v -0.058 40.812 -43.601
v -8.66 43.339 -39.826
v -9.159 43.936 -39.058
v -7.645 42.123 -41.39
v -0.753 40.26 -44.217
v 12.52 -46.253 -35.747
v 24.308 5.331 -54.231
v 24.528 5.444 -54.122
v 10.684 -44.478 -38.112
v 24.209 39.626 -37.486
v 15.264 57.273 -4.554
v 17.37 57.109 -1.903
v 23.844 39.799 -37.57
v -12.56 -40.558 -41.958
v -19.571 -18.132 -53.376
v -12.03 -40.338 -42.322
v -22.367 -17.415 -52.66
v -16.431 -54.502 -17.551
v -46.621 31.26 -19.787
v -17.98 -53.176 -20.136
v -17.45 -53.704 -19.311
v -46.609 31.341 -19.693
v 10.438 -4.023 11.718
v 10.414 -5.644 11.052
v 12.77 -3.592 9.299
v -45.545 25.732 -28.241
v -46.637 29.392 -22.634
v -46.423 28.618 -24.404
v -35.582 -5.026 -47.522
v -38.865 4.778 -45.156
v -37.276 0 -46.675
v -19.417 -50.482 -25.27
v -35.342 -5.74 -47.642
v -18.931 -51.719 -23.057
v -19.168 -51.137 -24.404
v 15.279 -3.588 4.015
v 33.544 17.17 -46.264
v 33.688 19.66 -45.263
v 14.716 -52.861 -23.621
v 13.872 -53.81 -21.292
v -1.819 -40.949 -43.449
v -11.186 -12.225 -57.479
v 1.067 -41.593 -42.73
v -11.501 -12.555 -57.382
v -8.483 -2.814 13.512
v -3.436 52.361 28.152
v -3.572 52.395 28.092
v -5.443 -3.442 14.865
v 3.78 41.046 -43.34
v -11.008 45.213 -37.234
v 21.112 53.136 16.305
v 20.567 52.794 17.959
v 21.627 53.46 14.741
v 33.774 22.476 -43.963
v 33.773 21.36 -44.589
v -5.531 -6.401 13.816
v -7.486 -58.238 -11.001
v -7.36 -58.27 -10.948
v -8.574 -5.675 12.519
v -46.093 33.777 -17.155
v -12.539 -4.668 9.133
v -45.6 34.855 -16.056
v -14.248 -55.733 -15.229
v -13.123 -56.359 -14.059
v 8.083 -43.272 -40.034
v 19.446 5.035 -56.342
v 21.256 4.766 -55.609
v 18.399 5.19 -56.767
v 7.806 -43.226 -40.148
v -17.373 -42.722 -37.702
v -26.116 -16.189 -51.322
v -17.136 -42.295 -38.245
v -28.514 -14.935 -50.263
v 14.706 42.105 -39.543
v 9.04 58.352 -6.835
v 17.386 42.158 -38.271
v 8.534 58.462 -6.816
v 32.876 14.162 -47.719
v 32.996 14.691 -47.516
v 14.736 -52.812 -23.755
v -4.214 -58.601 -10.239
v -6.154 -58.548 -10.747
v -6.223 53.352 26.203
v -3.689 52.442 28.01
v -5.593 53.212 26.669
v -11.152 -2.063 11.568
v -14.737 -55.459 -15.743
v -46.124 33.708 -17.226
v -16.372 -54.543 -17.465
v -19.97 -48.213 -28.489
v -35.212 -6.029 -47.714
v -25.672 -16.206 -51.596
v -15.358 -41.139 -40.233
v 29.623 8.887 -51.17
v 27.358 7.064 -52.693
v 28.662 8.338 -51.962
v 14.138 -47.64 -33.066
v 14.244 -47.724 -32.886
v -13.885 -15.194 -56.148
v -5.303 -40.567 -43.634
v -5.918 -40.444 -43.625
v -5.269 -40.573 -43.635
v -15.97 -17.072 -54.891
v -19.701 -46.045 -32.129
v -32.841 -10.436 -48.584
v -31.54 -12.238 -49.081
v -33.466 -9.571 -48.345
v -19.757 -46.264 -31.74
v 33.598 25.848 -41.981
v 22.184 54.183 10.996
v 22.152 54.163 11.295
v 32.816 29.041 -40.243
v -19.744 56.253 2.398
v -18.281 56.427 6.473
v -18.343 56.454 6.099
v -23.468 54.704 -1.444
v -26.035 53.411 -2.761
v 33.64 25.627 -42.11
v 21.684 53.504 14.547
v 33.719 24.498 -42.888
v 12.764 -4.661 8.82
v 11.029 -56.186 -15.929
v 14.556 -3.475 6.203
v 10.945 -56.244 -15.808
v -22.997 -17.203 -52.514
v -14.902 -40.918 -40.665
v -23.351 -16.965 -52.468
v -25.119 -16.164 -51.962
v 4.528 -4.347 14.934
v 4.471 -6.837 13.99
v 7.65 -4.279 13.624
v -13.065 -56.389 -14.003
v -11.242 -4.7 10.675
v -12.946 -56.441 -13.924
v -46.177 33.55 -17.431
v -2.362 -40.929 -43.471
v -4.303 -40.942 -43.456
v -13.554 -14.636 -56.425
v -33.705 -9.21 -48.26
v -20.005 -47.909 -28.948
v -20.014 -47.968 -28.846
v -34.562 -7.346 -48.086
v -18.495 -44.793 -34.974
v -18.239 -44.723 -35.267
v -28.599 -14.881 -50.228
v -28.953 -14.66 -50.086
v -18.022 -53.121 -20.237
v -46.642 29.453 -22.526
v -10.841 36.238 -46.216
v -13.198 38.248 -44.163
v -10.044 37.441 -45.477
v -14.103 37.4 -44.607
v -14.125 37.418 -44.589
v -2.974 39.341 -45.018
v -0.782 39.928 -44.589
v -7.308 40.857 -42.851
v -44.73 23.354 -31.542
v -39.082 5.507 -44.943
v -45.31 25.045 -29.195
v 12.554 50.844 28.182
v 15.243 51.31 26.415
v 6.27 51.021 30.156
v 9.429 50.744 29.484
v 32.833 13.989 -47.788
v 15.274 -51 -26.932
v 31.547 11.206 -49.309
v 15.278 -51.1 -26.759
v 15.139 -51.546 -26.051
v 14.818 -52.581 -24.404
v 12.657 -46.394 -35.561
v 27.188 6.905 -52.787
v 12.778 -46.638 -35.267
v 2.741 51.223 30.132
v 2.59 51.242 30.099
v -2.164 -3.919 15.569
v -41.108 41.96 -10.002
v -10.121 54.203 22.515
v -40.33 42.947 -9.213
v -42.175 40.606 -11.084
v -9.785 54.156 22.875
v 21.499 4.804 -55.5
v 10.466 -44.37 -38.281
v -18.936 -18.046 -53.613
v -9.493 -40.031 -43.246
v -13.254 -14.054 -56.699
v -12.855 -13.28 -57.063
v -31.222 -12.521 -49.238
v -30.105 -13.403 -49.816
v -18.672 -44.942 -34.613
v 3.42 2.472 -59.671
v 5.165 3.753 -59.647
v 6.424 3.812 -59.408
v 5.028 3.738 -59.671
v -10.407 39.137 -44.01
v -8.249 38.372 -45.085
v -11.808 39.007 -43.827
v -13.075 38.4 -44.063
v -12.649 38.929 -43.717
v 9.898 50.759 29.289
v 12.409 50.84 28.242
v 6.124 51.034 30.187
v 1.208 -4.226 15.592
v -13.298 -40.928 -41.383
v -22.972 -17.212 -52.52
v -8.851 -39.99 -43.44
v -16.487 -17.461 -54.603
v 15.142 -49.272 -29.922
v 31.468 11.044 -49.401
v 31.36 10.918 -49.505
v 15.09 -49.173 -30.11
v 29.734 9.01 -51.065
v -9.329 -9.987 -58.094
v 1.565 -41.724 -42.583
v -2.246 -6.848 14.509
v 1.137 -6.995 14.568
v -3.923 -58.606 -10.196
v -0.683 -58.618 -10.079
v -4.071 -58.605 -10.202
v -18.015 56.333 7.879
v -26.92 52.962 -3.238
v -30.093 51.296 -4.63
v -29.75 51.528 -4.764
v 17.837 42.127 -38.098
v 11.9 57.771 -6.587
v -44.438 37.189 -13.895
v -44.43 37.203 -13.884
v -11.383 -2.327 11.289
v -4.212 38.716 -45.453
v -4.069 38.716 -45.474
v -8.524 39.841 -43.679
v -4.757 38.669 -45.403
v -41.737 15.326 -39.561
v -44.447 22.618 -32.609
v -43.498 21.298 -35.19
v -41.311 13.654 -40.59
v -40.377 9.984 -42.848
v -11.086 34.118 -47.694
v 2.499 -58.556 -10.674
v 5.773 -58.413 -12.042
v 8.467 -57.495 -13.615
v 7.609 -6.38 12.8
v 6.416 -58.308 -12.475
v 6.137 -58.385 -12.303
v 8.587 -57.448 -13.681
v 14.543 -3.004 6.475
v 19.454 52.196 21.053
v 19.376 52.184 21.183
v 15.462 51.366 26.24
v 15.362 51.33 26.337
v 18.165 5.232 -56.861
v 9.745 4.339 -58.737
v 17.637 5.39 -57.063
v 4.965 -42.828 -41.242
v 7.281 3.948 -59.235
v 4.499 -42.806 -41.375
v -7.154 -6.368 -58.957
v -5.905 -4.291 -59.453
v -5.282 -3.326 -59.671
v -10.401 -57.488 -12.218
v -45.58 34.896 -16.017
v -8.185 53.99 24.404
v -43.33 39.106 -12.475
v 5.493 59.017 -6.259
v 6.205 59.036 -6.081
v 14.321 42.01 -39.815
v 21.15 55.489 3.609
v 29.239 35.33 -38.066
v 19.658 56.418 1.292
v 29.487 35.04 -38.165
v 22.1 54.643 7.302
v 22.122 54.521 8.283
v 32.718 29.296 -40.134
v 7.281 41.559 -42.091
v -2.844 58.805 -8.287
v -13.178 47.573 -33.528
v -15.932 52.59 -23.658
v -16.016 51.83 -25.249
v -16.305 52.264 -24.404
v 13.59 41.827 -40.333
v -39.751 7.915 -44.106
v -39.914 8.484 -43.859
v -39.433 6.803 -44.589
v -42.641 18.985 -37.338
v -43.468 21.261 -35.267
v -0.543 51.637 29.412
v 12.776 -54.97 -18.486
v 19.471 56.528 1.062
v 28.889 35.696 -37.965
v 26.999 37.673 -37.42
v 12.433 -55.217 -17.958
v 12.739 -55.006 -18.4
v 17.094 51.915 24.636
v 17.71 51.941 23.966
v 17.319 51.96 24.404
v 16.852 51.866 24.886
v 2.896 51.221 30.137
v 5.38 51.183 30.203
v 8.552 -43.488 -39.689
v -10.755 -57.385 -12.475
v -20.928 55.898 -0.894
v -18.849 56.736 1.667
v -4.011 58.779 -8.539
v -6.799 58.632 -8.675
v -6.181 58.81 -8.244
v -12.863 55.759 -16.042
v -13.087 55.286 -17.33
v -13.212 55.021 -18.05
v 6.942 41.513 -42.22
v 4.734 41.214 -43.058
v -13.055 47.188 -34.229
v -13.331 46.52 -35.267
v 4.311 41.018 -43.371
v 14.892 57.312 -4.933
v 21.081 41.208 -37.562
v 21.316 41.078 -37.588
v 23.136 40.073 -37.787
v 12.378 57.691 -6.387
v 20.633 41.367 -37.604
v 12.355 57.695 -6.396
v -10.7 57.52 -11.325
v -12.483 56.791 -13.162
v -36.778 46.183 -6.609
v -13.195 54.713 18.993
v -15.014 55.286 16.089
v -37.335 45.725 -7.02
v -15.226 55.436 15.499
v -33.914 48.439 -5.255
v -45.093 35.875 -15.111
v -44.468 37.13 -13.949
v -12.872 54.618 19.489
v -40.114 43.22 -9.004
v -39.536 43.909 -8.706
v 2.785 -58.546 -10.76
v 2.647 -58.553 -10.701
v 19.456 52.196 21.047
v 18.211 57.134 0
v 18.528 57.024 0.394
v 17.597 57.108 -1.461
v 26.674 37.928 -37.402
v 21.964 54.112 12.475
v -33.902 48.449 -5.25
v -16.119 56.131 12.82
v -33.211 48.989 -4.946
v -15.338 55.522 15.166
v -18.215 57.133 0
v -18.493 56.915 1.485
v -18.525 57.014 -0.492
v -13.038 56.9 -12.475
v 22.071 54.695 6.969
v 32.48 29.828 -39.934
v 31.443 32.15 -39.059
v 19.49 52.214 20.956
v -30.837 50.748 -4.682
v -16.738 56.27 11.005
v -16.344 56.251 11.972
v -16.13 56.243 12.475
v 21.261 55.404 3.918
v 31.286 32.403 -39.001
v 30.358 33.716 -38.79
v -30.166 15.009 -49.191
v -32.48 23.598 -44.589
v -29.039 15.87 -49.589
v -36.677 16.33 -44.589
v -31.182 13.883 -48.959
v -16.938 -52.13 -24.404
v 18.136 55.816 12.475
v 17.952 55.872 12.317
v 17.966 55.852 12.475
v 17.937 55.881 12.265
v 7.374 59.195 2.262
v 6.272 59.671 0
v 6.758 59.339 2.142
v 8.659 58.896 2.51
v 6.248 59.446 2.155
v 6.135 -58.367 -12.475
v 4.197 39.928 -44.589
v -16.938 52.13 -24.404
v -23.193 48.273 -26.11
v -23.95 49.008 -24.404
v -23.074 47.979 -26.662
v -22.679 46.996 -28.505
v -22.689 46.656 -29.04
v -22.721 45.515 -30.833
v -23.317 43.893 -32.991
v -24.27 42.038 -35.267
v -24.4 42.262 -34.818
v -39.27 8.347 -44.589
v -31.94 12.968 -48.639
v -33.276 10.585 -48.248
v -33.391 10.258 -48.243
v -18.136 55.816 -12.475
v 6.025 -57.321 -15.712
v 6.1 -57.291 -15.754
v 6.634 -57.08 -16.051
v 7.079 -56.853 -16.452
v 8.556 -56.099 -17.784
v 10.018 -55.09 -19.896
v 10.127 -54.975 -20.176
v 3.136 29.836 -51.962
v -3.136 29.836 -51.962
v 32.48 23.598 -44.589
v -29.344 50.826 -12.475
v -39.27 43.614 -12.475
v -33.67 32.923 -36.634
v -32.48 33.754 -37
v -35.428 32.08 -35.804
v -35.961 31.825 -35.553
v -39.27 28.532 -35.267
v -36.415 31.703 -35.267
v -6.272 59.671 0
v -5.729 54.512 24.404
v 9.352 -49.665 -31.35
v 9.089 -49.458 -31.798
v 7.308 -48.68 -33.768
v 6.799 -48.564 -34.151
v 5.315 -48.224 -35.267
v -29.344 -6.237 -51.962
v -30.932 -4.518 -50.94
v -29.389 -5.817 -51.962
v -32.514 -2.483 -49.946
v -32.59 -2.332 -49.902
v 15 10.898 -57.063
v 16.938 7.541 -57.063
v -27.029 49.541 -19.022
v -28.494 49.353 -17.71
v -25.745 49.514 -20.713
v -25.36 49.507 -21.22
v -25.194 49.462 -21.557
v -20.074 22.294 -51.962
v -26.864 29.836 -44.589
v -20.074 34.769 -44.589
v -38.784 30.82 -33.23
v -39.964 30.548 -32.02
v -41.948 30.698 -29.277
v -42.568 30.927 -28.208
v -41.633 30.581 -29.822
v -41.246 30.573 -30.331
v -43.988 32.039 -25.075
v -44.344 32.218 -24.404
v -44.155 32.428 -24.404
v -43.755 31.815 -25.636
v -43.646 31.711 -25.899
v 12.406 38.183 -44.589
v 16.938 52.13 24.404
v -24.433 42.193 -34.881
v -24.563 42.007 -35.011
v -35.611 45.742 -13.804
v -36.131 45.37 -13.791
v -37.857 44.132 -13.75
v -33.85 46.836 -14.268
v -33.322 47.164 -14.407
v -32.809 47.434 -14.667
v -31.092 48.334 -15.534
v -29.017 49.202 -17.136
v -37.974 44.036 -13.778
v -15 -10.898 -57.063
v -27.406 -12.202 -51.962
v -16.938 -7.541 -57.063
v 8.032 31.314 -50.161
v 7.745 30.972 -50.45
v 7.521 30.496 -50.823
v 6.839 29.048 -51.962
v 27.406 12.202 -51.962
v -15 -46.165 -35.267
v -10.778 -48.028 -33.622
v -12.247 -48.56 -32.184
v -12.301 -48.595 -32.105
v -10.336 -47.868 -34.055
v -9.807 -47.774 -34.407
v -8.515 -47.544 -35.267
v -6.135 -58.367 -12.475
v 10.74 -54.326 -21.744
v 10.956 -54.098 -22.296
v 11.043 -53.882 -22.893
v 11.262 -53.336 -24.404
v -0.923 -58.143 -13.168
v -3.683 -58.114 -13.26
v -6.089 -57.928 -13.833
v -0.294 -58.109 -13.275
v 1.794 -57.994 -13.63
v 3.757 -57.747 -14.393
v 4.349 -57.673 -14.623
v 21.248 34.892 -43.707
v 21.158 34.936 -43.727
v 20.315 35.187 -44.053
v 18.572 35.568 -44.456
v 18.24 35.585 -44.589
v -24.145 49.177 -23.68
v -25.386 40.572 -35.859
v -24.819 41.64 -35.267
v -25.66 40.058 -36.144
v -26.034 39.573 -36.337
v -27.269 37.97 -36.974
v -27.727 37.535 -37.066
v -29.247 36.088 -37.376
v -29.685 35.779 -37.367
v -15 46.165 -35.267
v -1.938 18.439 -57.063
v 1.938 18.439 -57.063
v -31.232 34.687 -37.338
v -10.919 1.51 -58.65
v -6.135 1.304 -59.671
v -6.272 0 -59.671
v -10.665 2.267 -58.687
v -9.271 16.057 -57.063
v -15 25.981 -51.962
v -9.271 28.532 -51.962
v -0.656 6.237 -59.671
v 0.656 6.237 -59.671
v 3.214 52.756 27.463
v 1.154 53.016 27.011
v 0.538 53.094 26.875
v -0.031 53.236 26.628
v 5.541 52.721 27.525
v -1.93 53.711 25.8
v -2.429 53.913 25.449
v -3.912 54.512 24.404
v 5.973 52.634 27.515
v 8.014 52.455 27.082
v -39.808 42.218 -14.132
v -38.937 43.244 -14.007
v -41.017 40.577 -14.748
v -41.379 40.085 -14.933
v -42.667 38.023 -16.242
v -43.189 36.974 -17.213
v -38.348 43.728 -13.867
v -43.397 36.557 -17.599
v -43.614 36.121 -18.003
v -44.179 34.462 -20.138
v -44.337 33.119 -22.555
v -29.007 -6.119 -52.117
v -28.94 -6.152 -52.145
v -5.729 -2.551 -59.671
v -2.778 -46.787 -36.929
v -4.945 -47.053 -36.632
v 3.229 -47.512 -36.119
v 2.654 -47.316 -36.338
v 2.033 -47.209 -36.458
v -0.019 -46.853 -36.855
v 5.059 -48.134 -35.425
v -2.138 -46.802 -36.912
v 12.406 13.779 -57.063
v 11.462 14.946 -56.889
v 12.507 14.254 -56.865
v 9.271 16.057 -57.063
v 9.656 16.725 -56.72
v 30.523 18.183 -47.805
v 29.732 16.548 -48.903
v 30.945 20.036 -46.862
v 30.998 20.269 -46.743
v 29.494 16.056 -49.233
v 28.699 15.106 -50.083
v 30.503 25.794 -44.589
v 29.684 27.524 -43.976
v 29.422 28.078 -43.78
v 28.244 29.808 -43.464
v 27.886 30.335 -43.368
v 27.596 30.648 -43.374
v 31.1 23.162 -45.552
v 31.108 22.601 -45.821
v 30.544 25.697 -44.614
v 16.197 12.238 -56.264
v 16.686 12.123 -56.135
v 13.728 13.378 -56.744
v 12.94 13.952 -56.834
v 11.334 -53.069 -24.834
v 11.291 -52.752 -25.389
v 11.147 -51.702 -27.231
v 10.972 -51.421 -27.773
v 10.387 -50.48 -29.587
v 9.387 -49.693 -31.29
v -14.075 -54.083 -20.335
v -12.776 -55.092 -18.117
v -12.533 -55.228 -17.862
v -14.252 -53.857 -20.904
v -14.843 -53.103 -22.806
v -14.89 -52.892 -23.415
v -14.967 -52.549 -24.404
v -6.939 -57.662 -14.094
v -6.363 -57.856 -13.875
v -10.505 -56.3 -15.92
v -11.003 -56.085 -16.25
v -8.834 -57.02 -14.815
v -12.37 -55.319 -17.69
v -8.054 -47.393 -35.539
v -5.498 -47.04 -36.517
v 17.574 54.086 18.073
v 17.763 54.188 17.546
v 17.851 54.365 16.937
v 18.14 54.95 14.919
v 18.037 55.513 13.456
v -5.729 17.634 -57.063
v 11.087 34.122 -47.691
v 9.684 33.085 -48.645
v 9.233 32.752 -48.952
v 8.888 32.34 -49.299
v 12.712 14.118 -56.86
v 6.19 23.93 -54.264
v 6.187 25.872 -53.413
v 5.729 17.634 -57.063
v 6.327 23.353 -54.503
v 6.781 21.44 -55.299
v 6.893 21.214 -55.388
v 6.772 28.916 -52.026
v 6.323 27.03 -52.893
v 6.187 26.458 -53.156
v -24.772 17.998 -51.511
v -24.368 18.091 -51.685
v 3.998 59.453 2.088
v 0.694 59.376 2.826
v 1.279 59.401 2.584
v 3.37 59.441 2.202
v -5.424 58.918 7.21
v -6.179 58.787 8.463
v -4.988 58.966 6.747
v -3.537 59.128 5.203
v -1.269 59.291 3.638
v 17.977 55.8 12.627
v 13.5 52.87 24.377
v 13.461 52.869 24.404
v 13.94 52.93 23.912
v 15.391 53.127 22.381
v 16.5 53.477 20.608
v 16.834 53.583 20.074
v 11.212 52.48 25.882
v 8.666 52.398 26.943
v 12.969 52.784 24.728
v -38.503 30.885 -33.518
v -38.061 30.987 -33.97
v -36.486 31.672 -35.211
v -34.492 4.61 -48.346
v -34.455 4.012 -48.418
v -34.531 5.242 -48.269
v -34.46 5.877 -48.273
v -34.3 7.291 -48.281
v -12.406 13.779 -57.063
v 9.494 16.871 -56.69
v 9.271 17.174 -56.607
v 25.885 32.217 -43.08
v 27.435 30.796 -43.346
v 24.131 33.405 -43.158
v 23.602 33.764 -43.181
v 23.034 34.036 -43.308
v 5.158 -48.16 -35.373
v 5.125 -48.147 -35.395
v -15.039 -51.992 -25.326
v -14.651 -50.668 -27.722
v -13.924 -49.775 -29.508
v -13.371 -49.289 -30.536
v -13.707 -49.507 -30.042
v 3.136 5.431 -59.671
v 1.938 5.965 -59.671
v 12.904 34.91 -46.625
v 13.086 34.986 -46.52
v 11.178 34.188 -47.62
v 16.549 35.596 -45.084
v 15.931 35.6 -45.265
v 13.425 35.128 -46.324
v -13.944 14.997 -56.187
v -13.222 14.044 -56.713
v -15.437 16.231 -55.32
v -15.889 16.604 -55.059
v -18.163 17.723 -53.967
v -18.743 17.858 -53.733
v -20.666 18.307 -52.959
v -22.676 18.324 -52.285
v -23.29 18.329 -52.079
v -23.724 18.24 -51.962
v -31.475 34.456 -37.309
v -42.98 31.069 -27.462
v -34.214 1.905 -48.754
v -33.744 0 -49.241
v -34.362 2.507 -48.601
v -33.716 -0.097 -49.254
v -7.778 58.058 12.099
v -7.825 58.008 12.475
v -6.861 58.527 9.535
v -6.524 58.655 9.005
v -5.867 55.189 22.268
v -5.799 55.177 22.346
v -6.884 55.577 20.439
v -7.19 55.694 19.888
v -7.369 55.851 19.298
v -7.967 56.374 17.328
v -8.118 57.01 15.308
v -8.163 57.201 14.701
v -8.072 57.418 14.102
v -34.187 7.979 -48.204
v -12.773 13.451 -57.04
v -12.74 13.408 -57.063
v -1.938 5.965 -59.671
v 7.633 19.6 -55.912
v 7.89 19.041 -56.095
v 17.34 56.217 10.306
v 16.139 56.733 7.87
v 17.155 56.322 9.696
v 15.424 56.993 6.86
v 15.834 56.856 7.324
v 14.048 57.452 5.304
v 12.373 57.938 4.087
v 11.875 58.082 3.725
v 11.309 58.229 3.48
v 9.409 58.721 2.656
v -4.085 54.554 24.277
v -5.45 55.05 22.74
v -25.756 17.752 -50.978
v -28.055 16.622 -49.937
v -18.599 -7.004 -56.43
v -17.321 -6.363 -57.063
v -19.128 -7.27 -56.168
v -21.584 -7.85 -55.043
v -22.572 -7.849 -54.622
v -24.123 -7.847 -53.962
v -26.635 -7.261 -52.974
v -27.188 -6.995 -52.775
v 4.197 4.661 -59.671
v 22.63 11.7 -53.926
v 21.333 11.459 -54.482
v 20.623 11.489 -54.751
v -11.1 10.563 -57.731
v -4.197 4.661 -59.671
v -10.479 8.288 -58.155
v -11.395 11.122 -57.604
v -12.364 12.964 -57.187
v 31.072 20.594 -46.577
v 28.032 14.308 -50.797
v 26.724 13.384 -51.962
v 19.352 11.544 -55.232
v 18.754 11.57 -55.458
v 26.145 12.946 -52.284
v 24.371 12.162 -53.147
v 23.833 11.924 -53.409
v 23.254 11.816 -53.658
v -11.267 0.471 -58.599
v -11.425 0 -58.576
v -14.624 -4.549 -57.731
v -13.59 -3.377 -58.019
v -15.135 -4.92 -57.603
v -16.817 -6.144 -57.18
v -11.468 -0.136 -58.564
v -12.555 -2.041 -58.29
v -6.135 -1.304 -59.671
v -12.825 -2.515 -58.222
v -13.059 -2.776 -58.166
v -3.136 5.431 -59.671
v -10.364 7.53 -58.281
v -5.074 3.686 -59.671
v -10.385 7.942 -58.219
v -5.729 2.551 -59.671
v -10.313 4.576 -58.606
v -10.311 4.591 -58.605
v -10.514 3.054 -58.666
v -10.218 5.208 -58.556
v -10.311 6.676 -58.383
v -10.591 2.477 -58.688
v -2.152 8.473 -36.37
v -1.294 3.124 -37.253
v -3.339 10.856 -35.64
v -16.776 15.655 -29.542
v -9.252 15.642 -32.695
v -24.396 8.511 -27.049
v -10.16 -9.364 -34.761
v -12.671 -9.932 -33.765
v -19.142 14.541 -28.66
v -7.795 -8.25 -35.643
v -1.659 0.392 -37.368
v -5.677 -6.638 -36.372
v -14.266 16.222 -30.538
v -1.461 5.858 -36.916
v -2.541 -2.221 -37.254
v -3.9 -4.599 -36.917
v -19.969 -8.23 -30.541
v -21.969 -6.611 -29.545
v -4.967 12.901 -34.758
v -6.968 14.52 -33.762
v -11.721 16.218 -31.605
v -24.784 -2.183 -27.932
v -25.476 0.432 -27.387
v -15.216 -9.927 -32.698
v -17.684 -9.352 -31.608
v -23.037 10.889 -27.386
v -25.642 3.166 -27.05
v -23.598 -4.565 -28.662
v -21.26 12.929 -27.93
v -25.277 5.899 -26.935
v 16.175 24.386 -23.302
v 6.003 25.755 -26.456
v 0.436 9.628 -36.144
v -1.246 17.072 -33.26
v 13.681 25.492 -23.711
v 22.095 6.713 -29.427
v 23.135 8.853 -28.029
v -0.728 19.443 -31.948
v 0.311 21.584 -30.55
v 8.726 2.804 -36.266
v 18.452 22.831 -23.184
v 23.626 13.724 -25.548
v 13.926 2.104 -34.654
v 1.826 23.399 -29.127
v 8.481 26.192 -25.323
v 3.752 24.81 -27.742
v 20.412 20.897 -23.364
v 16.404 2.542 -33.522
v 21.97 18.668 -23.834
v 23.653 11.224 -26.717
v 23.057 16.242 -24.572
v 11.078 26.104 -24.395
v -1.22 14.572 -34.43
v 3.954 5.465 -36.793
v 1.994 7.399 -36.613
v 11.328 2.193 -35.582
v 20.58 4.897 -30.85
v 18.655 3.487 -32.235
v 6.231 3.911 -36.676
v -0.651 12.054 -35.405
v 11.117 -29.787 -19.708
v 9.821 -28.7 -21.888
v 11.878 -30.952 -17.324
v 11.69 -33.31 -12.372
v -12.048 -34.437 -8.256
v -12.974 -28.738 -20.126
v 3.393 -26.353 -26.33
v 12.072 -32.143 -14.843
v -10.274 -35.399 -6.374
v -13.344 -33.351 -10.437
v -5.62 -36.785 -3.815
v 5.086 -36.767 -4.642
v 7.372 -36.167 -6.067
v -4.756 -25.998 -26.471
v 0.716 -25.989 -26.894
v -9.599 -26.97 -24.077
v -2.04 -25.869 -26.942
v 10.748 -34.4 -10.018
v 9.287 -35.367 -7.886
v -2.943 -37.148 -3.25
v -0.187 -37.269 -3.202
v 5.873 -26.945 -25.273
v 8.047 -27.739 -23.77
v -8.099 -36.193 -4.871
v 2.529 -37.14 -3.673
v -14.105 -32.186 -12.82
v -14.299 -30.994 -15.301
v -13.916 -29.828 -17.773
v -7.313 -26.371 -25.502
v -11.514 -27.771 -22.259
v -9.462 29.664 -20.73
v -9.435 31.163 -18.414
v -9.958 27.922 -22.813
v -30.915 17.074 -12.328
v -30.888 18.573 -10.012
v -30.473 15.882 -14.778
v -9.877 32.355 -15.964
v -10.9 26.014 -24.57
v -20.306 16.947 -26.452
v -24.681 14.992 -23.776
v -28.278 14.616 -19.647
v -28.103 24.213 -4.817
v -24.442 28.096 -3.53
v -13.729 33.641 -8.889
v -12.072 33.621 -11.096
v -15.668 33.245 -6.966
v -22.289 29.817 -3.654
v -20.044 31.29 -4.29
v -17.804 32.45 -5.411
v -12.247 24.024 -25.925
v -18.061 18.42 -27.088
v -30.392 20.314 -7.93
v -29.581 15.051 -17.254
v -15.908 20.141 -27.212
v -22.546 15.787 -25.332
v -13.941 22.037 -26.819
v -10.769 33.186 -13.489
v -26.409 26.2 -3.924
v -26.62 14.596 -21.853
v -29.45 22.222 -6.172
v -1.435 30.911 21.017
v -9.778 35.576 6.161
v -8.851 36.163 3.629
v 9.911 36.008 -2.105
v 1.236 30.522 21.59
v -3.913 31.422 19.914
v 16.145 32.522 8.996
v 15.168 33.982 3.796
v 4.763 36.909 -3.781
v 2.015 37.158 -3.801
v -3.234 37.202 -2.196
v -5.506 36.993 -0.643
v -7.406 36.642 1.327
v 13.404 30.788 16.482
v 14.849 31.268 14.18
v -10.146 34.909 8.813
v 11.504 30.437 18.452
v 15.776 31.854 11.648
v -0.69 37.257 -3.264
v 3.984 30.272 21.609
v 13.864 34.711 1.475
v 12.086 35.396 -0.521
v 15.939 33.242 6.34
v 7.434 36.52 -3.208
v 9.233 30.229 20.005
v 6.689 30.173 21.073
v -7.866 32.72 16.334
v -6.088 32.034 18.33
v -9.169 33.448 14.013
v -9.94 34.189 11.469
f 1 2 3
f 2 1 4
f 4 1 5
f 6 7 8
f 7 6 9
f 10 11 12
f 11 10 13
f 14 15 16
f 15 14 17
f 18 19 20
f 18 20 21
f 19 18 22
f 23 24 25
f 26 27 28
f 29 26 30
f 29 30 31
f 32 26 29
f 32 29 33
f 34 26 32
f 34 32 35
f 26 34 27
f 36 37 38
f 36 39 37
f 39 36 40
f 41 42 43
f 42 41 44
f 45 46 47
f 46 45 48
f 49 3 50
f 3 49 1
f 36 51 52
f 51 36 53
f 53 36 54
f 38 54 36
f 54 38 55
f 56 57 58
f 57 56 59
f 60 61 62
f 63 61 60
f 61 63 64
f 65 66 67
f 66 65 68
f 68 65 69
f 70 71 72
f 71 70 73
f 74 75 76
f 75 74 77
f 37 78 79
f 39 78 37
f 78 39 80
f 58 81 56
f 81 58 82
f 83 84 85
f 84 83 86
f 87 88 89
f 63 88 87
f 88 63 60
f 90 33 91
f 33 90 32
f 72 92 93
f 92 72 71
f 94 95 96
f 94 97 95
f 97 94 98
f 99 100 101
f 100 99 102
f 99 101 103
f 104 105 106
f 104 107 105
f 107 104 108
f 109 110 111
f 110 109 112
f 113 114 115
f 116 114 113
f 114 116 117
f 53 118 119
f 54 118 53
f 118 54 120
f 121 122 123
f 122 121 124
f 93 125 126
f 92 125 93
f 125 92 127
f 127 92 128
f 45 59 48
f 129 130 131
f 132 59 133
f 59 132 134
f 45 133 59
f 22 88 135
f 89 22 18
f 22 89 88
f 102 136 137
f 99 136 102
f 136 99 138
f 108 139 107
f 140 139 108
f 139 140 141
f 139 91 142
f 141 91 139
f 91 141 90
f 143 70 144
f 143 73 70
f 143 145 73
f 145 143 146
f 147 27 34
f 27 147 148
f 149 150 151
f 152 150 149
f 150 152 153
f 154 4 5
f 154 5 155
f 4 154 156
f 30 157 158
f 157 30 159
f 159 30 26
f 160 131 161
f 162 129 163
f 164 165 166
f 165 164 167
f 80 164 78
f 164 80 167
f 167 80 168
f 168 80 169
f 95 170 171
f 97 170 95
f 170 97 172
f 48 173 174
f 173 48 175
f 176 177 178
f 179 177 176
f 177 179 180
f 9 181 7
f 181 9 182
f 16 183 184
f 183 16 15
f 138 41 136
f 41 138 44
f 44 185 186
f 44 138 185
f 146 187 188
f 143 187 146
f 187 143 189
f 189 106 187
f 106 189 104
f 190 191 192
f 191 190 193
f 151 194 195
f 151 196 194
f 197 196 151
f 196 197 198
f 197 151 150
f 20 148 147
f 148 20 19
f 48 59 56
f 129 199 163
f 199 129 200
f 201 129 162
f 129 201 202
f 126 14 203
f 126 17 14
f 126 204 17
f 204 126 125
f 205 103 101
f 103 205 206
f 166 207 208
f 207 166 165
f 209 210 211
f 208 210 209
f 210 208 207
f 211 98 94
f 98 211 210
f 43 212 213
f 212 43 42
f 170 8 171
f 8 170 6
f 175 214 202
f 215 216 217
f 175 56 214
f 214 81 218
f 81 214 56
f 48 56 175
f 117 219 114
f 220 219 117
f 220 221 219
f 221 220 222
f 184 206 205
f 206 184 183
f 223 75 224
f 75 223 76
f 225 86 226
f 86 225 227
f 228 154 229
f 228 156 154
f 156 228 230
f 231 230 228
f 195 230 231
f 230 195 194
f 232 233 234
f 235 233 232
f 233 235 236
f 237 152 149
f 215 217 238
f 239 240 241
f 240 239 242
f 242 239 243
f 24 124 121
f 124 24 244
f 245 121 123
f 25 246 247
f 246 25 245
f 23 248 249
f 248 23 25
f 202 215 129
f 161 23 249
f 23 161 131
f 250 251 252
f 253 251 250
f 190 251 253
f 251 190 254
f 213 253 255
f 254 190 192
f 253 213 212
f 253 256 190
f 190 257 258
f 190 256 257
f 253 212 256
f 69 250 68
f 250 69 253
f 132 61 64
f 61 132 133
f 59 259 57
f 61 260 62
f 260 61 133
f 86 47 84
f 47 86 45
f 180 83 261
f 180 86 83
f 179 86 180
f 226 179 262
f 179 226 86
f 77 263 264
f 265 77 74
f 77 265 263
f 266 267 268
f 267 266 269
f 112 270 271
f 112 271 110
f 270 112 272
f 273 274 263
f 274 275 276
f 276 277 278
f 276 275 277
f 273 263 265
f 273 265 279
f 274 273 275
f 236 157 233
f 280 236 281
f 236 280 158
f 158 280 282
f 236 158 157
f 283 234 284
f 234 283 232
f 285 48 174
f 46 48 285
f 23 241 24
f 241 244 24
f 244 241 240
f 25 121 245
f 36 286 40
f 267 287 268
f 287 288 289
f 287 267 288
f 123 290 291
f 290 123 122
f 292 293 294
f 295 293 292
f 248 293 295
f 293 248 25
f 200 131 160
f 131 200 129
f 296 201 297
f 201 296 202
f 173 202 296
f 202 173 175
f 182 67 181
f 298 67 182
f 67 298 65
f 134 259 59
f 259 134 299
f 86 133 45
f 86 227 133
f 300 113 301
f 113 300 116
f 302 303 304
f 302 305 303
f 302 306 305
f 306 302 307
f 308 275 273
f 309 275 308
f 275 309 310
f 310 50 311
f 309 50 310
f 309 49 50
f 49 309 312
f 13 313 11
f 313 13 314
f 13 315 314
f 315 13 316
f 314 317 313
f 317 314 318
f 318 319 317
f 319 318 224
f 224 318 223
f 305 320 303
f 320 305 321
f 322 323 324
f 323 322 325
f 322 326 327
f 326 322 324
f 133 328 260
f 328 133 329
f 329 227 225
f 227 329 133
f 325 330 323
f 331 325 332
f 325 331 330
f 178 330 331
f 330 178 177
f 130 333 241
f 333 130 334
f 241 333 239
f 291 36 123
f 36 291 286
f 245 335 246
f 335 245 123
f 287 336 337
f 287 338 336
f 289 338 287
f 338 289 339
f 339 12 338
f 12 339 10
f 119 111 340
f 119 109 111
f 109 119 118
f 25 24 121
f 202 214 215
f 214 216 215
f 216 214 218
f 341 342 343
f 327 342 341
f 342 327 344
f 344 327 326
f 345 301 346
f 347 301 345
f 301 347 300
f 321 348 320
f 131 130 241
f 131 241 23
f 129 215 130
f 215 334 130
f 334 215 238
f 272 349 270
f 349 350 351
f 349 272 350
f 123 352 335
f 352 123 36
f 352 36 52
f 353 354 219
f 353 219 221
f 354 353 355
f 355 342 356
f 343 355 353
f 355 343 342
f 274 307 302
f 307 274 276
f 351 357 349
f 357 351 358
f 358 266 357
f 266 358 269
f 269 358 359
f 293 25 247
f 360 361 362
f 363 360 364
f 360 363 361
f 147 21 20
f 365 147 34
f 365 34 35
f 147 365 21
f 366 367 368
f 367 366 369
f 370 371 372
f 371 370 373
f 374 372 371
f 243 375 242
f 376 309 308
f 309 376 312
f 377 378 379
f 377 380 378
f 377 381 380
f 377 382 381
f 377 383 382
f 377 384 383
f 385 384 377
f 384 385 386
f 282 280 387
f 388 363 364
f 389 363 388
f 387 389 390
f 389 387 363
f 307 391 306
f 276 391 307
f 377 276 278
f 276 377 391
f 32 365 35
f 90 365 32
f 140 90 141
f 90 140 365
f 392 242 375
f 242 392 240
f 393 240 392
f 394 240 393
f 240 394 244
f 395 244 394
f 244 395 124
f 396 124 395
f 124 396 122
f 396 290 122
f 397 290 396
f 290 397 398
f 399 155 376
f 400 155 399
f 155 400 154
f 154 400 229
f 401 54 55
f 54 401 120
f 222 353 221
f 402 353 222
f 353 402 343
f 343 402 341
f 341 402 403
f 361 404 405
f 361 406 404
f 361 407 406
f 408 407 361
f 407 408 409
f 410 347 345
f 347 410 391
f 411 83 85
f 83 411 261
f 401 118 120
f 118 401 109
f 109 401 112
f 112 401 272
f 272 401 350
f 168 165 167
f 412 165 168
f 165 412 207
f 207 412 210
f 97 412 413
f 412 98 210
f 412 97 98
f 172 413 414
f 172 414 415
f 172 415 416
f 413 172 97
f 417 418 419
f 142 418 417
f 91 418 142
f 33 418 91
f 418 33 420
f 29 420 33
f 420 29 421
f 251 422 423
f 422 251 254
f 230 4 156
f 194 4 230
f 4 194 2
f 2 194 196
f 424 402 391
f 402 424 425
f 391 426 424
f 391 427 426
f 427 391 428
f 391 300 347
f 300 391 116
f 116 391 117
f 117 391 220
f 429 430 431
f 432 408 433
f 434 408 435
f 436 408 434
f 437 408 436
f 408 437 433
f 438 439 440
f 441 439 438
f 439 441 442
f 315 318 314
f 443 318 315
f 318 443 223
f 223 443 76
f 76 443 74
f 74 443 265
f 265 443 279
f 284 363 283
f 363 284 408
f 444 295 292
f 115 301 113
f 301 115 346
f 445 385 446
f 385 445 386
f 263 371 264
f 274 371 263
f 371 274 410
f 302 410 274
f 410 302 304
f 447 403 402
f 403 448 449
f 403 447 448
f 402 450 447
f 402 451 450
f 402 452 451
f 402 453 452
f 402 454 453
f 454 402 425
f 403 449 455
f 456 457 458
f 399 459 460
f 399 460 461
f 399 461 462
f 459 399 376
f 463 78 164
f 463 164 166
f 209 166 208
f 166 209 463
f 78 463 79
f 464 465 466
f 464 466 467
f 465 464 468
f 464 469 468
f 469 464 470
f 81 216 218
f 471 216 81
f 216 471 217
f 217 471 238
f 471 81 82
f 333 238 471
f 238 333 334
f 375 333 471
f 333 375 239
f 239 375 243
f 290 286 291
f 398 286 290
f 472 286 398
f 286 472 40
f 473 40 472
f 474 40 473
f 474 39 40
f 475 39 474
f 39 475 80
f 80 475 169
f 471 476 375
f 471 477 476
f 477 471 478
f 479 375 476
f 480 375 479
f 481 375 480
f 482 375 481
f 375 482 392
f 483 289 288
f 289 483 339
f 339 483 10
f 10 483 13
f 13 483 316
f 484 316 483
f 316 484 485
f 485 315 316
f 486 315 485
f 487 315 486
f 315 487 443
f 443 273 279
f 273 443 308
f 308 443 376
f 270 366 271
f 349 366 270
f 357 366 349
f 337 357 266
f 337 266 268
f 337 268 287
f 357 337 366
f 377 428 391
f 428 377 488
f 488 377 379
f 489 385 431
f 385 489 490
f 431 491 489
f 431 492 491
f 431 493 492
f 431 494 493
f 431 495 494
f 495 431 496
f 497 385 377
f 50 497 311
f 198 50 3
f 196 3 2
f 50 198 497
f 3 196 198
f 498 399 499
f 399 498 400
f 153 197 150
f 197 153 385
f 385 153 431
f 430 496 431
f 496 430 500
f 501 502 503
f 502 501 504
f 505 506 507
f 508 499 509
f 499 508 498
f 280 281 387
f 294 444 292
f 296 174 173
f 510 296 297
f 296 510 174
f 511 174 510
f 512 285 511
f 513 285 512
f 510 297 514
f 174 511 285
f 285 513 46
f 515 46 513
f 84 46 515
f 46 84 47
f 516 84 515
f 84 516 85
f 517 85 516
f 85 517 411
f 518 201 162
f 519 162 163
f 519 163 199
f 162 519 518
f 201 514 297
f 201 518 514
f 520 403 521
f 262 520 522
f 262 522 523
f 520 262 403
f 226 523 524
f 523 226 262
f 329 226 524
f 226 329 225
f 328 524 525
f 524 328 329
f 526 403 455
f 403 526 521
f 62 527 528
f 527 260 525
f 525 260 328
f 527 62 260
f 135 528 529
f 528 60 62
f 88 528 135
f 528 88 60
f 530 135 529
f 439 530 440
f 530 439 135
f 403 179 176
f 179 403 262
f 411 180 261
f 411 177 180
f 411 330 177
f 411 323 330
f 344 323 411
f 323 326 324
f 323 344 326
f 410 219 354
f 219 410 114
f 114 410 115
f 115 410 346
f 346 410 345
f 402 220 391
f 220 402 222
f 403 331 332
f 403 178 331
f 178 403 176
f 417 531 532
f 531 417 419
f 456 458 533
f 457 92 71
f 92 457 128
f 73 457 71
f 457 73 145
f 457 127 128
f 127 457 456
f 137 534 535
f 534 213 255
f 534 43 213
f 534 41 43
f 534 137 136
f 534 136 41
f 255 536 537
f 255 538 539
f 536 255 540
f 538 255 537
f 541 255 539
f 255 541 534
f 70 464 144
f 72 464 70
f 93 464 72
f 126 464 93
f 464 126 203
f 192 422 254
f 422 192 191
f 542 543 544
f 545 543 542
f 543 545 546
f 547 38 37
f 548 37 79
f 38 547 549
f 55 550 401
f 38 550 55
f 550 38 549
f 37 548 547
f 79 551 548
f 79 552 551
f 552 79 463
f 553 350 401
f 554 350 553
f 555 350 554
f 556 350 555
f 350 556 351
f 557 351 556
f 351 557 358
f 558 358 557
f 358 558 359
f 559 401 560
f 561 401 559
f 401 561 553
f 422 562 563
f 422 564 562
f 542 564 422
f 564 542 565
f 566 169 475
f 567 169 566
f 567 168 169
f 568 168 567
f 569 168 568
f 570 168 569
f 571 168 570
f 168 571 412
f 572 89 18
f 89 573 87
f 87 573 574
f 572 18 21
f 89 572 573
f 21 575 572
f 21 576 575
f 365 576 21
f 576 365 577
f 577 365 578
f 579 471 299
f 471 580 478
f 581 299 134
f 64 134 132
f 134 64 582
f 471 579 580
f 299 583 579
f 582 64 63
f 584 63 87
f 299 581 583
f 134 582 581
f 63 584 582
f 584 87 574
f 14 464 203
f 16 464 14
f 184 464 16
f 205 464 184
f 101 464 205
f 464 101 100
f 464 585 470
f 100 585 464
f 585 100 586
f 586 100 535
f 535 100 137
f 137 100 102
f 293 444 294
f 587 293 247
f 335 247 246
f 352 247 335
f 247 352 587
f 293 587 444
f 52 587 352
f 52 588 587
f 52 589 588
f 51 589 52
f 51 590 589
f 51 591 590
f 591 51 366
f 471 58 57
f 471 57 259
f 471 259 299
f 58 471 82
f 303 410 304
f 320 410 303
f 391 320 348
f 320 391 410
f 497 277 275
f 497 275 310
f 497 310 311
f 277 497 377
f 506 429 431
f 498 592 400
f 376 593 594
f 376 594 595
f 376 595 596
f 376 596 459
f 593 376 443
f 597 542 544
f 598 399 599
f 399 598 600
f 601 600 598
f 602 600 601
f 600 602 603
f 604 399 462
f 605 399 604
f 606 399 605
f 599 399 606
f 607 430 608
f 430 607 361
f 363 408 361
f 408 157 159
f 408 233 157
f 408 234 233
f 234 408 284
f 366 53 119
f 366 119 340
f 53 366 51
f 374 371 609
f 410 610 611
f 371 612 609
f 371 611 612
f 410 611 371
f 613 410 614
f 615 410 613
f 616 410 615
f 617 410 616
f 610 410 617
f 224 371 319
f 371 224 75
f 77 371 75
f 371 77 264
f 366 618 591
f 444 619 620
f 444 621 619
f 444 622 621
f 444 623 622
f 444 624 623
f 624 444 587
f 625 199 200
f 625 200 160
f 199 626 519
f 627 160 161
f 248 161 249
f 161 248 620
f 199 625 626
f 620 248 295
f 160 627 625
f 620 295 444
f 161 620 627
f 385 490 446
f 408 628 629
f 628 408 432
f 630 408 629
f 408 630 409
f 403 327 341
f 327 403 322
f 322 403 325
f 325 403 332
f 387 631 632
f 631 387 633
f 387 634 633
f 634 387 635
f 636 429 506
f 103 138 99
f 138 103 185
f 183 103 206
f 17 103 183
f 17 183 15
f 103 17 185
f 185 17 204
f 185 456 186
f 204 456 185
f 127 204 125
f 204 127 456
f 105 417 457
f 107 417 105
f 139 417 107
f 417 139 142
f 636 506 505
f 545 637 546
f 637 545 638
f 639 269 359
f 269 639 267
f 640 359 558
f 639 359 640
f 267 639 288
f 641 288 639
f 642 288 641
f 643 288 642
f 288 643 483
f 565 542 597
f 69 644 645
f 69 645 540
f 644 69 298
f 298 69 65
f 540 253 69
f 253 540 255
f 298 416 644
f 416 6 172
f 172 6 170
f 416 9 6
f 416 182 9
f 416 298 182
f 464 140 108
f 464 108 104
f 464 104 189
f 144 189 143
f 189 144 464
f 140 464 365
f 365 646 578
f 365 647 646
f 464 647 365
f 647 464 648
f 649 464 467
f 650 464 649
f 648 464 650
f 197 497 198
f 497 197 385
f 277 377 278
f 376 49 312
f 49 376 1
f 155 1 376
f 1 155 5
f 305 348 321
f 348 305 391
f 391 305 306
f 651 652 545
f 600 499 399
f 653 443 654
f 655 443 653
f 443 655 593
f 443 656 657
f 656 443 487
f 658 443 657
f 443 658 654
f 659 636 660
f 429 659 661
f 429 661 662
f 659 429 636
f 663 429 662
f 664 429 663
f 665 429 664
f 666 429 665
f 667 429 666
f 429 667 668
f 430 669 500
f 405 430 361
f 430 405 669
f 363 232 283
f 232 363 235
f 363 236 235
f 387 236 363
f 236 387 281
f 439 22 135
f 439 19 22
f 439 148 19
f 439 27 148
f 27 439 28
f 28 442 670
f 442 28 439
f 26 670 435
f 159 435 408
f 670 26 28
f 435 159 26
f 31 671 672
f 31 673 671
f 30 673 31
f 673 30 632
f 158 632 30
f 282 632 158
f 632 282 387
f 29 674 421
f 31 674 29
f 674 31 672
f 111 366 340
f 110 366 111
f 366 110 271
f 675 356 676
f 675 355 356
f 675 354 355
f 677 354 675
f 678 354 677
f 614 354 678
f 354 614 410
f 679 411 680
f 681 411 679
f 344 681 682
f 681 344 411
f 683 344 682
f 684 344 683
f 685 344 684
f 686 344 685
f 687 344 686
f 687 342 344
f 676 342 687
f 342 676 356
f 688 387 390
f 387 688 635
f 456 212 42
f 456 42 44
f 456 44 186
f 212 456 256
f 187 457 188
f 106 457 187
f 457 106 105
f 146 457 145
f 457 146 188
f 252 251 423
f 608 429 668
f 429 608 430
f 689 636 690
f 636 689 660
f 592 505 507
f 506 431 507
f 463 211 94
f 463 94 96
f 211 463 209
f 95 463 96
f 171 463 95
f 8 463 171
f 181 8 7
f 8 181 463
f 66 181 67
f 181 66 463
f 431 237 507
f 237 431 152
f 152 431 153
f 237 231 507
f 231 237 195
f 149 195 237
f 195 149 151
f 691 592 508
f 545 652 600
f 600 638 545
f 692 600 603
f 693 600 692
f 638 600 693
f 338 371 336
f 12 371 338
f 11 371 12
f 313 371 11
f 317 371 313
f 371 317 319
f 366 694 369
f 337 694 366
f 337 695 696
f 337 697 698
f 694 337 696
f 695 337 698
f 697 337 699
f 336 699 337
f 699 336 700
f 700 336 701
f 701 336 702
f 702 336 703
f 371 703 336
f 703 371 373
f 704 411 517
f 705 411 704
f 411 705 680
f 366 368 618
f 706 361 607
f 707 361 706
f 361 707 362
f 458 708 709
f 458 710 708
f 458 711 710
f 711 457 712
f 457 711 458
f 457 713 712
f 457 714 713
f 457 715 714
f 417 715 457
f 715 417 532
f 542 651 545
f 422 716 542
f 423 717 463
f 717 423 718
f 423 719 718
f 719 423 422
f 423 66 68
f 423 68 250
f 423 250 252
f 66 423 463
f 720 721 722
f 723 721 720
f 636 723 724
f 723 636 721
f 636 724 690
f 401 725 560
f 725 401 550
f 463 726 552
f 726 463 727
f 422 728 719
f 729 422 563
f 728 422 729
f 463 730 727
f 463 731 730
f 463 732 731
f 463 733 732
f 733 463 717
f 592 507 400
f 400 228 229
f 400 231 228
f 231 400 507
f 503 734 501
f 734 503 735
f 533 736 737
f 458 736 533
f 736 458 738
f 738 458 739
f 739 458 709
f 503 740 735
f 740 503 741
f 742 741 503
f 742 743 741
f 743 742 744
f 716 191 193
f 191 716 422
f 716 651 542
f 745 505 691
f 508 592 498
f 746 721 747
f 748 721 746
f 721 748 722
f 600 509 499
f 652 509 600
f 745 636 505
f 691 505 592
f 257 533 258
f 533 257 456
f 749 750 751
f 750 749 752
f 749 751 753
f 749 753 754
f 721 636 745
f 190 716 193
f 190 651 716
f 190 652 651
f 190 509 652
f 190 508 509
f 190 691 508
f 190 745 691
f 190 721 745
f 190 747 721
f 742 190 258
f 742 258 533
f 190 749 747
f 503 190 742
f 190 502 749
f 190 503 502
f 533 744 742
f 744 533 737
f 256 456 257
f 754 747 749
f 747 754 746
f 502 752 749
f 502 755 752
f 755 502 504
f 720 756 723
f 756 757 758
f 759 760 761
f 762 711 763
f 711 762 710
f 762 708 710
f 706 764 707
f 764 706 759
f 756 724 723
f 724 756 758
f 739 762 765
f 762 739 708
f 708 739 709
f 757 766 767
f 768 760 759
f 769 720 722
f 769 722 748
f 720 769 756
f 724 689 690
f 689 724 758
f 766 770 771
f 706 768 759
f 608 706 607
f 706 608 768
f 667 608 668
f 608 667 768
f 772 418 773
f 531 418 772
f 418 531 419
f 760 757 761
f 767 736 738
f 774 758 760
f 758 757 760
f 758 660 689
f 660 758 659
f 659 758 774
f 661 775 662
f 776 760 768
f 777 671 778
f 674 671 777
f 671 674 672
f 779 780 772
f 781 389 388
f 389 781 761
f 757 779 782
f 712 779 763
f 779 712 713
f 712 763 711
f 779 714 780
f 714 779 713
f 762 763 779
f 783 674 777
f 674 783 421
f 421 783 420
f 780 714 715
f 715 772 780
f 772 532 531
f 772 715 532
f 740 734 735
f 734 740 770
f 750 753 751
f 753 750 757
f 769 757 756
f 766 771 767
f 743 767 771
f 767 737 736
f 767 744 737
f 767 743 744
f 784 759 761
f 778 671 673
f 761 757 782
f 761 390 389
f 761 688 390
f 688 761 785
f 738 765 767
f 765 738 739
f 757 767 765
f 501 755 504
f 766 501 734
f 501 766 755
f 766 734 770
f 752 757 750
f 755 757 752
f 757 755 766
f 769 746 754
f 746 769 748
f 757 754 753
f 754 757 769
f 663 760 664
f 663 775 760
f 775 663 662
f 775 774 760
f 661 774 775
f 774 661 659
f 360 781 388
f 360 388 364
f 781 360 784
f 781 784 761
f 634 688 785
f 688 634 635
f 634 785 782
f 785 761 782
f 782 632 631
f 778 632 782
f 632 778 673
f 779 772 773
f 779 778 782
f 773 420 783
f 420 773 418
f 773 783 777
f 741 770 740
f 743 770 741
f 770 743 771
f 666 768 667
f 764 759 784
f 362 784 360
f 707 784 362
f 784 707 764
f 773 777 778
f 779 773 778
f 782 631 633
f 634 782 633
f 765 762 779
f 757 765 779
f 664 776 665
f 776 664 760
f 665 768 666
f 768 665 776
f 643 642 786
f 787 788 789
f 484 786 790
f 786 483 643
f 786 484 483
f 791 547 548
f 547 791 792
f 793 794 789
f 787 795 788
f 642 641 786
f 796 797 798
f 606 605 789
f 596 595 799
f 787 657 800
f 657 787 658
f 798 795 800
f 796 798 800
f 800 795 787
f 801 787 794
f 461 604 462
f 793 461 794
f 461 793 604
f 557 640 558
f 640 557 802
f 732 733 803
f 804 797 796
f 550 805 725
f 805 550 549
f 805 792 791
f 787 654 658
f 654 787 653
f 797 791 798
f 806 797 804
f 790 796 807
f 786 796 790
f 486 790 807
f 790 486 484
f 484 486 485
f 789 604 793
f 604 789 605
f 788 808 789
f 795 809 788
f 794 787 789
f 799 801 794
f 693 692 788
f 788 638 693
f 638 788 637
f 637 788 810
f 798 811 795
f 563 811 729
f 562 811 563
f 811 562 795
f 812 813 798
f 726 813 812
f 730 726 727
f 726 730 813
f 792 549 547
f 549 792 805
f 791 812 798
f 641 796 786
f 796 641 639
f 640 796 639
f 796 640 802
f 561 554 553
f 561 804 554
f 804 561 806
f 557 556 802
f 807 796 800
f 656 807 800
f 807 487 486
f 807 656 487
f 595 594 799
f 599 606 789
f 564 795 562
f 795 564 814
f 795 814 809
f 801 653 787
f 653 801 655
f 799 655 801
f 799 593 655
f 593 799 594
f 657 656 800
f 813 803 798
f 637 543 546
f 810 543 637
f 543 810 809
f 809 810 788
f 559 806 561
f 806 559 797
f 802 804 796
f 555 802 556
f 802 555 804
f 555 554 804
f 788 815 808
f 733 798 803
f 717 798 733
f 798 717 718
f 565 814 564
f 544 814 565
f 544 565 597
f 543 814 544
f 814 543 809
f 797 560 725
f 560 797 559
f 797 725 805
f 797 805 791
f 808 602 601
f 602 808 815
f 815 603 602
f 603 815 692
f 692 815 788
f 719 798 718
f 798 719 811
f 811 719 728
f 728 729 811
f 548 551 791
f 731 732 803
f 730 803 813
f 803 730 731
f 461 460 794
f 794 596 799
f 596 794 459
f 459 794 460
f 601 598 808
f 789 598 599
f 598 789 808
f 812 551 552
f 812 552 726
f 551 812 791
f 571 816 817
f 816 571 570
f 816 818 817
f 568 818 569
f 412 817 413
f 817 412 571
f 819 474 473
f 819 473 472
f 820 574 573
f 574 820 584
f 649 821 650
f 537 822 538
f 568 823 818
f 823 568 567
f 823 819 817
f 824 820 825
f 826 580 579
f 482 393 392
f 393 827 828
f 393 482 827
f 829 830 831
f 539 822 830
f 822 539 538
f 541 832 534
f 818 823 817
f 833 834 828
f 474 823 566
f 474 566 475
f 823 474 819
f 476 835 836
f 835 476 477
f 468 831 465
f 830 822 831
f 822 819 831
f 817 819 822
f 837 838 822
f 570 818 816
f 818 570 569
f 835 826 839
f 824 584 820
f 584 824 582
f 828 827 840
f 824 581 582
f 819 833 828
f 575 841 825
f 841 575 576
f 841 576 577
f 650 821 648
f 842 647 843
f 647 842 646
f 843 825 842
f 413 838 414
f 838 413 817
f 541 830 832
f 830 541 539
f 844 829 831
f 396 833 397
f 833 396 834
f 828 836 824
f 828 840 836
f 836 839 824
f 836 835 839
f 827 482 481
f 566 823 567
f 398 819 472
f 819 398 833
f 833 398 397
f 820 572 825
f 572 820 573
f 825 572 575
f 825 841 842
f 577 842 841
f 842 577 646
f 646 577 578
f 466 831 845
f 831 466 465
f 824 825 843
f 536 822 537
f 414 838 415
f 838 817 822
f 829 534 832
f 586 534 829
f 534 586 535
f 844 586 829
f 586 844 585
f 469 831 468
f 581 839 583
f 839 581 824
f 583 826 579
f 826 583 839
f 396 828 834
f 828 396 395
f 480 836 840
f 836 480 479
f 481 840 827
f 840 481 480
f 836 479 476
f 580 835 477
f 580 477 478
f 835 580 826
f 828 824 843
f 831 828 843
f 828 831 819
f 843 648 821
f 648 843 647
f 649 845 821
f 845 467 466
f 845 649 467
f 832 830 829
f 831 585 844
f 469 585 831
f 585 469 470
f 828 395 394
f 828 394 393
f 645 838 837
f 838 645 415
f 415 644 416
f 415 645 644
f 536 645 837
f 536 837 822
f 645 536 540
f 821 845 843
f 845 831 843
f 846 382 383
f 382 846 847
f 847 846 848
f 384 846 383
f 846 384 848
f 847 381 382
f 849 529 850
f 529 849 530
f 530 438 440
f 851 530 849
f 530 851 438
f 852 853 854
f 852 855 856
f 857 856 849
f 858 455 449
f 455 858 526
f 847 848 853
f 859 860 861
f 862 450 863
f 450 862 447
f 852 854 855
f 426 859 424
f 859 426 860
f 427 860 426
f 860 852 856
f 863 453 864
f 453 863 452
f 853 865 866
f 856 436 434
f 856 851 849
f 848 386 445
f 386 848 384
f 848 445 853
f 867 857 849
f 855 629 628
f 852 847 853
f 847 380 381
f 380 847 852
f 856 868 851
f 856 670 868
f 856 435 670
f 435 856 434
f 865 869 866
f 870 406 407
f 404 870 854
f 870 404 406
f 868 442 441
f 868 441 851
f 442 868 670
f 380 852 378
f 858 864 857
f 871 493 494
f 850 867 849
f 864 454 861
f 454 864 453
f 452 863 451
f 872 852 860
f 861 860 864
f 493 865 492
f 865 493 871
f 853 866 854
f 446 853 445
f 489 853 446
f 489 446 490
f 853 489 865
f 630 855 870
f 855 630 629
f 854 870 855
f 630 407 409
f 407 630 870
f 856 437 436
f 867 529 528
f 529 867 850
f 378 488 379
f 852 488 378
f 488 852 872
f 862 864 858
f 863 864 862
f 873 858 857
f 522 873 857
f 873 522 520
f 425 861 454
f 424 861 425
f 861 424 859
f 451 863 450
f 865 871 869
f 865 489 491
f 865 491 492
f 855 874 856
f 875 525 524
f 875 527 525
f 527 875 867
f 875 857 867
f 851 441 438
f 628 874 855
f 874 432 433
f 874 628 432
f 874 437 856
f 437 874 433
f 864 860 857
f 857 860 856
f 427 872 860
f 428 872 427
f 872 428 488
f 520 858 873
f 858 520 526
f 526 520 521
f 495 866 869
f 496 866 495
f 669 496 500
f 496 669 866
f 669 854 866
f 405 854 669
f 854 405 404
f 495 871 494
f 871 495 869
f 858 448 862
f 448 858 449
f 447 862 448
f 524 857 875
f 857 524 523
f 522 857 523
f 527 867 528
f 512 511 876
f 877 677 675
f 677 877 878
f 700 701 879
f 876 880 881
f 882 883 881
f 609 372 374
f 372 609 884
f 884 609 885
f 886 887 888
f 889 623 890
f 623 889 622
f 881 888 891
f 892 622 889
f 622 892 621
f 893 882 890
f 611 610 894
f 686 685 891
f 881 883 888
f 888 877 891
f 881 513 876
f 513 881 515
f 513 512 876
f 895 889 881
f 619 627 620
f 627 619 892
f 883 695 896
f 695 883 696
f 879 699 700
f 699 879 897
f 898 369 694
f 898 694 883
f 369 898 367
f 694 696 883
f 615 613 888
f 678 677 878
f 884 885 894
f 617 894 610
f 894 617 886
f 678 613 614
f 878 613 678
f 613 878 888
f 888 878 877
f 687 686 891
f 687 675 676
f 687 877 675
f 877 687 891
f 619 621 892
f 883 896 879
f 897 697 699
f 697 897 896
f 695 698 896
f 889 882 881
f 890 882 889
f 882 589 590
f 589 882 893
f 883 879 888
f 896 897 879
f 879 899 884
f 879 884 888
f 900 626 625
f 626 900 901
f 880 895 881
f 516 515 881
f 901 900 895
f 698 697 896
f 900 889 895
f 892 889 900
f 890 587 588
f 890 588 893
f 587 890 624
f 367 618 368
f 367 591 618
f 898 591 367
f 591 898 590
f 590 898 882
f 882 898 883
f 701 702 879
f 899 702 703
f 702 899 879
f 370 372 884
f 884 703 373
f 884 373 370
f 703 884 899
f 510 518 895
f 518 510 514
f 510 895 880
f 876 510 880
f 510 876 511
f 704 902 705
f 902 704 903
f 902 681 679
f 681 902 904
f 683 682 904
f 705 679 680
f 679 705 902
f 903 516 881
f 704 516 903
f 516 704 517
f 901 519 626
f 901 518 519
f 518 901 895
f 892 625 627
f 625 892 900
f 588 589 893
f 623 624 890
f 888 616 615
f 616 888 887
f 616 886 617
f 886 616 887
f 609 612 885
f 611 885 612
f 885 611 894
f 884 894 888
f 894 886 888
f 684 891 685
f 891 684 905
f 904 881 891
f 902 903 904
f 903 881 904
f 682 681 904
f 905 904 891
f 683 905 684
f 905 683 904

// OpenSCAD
difference() {
	intersection() {
		hull() {
			rotate(a = -104.9619843639, v = [-0.8737079601, -0.4122844528, 0.0000000000]) {
				rotate(a = -90.0000000000, v = [-0.9920645329, -0.1257297202, 0.0000000000]) {
					cylinder(h = 60, r = 16.2000000000);
				}
			}
			rotate(a = -104.9619843639, v = [-0.8737079601, -0.4122844528, 0.0000000000]) {
				rotate(a = -90.0000000000, v = [-0.6049173981, -0.7962882276, 0.0000000000]) {
					cylinder(h = 60, r = 16.2000000000);
				}
			}
			rotate(a = -104.9619843639, v = [-0.8737079601, -0.4122844528, 0.0000000000]) {
				rotate(a = -27.6102972421, v = [-0.3654982548, 0.2849593619, 0.0000000000]) {
					cylinder(h = 60, r = 16.2000000000);
				}
			}
			rotate(a = -104.9619843639, v = [-0.8737079601, -0.4122844528, 0.0000000000]) {
				rotate(a = -136.5800781830, v = [-0.6836285492, -0.0713331625, 0.0000000000]) {
					cylinder(h = 60, r = 16.2000000000);
				}
			}
			rotate(a = -104.9619843639, v = [-0.8737079601, -0.4122844528, 0.0000000000]) {
				rotate(a = -150.6905905926, v = [0.2359175348, -0.4289269045, 0.0000000000]) {
					cylinder(h = 60, r = 16.2000000000);
				}
			}
		}
		sphere(r = 60);
	}
	union() {
		rotate(a = -104.9619843639, v = [-0.8737079601, -0.4122844528, 0.0000000000]) {
			rotate(a = -90.0000000000, v = [-0.9920645329, -0.1257297202, 0.0000000000]) {
				translate(v = [0, 0, 35]) {
					cylinder(h = 100, r = 13.2000000000);
				}
			}
		}
		rotate(a = -104.9619843639, v = [-0.8737079601, -0.4122844528, 0.0000000000]) {
			rotate(a = -90.0000000000, v = [-0.6049173981, -0.7962882276, 0.0000000000]) {
				translate(v = [0, 0, 35]) {
					cylinder(h = 100, r = 13.2000000000);
				}
			}
		}
		rotate(a = -104.9619843639, v = [-0.8737079601, -0.4122844528, 0.0000000000]) {
			rotate(a = -27.6102972421, v = [-0.3654982548, 0.2849593619, 0.0000000000]) {
				translate(v = [0, 0, 35]) {
					cylinder(h = 100, r = 13.2000000000);
				}
			}
		}
		rotate(a = -104.9619843639, v = [-0.8737079601, -0.4122844528, 0.0000000000]) {
			rotate(a = -136.5800781830, v = [-0.6836285492, -0.0713331625, 0.0000000000]) {
				translate(v = [0, 0, 35]) {
					cylinder(h = 100, r = 13.2000000000);
				}
			}
		}
		rotate(a = -104.9619843639, v = [-0.8737079601, -0.4122844528, 0.0000000000]) {
			rotate(a = -150.6905905926, v = [0.2359175348, -0.4289269045, 0.0000000000]) {
				translate(v = [0, 0, 35]) {
					cylinder(h = 100, r = 13.2000000000);
				}
			}
		}
	}
}
